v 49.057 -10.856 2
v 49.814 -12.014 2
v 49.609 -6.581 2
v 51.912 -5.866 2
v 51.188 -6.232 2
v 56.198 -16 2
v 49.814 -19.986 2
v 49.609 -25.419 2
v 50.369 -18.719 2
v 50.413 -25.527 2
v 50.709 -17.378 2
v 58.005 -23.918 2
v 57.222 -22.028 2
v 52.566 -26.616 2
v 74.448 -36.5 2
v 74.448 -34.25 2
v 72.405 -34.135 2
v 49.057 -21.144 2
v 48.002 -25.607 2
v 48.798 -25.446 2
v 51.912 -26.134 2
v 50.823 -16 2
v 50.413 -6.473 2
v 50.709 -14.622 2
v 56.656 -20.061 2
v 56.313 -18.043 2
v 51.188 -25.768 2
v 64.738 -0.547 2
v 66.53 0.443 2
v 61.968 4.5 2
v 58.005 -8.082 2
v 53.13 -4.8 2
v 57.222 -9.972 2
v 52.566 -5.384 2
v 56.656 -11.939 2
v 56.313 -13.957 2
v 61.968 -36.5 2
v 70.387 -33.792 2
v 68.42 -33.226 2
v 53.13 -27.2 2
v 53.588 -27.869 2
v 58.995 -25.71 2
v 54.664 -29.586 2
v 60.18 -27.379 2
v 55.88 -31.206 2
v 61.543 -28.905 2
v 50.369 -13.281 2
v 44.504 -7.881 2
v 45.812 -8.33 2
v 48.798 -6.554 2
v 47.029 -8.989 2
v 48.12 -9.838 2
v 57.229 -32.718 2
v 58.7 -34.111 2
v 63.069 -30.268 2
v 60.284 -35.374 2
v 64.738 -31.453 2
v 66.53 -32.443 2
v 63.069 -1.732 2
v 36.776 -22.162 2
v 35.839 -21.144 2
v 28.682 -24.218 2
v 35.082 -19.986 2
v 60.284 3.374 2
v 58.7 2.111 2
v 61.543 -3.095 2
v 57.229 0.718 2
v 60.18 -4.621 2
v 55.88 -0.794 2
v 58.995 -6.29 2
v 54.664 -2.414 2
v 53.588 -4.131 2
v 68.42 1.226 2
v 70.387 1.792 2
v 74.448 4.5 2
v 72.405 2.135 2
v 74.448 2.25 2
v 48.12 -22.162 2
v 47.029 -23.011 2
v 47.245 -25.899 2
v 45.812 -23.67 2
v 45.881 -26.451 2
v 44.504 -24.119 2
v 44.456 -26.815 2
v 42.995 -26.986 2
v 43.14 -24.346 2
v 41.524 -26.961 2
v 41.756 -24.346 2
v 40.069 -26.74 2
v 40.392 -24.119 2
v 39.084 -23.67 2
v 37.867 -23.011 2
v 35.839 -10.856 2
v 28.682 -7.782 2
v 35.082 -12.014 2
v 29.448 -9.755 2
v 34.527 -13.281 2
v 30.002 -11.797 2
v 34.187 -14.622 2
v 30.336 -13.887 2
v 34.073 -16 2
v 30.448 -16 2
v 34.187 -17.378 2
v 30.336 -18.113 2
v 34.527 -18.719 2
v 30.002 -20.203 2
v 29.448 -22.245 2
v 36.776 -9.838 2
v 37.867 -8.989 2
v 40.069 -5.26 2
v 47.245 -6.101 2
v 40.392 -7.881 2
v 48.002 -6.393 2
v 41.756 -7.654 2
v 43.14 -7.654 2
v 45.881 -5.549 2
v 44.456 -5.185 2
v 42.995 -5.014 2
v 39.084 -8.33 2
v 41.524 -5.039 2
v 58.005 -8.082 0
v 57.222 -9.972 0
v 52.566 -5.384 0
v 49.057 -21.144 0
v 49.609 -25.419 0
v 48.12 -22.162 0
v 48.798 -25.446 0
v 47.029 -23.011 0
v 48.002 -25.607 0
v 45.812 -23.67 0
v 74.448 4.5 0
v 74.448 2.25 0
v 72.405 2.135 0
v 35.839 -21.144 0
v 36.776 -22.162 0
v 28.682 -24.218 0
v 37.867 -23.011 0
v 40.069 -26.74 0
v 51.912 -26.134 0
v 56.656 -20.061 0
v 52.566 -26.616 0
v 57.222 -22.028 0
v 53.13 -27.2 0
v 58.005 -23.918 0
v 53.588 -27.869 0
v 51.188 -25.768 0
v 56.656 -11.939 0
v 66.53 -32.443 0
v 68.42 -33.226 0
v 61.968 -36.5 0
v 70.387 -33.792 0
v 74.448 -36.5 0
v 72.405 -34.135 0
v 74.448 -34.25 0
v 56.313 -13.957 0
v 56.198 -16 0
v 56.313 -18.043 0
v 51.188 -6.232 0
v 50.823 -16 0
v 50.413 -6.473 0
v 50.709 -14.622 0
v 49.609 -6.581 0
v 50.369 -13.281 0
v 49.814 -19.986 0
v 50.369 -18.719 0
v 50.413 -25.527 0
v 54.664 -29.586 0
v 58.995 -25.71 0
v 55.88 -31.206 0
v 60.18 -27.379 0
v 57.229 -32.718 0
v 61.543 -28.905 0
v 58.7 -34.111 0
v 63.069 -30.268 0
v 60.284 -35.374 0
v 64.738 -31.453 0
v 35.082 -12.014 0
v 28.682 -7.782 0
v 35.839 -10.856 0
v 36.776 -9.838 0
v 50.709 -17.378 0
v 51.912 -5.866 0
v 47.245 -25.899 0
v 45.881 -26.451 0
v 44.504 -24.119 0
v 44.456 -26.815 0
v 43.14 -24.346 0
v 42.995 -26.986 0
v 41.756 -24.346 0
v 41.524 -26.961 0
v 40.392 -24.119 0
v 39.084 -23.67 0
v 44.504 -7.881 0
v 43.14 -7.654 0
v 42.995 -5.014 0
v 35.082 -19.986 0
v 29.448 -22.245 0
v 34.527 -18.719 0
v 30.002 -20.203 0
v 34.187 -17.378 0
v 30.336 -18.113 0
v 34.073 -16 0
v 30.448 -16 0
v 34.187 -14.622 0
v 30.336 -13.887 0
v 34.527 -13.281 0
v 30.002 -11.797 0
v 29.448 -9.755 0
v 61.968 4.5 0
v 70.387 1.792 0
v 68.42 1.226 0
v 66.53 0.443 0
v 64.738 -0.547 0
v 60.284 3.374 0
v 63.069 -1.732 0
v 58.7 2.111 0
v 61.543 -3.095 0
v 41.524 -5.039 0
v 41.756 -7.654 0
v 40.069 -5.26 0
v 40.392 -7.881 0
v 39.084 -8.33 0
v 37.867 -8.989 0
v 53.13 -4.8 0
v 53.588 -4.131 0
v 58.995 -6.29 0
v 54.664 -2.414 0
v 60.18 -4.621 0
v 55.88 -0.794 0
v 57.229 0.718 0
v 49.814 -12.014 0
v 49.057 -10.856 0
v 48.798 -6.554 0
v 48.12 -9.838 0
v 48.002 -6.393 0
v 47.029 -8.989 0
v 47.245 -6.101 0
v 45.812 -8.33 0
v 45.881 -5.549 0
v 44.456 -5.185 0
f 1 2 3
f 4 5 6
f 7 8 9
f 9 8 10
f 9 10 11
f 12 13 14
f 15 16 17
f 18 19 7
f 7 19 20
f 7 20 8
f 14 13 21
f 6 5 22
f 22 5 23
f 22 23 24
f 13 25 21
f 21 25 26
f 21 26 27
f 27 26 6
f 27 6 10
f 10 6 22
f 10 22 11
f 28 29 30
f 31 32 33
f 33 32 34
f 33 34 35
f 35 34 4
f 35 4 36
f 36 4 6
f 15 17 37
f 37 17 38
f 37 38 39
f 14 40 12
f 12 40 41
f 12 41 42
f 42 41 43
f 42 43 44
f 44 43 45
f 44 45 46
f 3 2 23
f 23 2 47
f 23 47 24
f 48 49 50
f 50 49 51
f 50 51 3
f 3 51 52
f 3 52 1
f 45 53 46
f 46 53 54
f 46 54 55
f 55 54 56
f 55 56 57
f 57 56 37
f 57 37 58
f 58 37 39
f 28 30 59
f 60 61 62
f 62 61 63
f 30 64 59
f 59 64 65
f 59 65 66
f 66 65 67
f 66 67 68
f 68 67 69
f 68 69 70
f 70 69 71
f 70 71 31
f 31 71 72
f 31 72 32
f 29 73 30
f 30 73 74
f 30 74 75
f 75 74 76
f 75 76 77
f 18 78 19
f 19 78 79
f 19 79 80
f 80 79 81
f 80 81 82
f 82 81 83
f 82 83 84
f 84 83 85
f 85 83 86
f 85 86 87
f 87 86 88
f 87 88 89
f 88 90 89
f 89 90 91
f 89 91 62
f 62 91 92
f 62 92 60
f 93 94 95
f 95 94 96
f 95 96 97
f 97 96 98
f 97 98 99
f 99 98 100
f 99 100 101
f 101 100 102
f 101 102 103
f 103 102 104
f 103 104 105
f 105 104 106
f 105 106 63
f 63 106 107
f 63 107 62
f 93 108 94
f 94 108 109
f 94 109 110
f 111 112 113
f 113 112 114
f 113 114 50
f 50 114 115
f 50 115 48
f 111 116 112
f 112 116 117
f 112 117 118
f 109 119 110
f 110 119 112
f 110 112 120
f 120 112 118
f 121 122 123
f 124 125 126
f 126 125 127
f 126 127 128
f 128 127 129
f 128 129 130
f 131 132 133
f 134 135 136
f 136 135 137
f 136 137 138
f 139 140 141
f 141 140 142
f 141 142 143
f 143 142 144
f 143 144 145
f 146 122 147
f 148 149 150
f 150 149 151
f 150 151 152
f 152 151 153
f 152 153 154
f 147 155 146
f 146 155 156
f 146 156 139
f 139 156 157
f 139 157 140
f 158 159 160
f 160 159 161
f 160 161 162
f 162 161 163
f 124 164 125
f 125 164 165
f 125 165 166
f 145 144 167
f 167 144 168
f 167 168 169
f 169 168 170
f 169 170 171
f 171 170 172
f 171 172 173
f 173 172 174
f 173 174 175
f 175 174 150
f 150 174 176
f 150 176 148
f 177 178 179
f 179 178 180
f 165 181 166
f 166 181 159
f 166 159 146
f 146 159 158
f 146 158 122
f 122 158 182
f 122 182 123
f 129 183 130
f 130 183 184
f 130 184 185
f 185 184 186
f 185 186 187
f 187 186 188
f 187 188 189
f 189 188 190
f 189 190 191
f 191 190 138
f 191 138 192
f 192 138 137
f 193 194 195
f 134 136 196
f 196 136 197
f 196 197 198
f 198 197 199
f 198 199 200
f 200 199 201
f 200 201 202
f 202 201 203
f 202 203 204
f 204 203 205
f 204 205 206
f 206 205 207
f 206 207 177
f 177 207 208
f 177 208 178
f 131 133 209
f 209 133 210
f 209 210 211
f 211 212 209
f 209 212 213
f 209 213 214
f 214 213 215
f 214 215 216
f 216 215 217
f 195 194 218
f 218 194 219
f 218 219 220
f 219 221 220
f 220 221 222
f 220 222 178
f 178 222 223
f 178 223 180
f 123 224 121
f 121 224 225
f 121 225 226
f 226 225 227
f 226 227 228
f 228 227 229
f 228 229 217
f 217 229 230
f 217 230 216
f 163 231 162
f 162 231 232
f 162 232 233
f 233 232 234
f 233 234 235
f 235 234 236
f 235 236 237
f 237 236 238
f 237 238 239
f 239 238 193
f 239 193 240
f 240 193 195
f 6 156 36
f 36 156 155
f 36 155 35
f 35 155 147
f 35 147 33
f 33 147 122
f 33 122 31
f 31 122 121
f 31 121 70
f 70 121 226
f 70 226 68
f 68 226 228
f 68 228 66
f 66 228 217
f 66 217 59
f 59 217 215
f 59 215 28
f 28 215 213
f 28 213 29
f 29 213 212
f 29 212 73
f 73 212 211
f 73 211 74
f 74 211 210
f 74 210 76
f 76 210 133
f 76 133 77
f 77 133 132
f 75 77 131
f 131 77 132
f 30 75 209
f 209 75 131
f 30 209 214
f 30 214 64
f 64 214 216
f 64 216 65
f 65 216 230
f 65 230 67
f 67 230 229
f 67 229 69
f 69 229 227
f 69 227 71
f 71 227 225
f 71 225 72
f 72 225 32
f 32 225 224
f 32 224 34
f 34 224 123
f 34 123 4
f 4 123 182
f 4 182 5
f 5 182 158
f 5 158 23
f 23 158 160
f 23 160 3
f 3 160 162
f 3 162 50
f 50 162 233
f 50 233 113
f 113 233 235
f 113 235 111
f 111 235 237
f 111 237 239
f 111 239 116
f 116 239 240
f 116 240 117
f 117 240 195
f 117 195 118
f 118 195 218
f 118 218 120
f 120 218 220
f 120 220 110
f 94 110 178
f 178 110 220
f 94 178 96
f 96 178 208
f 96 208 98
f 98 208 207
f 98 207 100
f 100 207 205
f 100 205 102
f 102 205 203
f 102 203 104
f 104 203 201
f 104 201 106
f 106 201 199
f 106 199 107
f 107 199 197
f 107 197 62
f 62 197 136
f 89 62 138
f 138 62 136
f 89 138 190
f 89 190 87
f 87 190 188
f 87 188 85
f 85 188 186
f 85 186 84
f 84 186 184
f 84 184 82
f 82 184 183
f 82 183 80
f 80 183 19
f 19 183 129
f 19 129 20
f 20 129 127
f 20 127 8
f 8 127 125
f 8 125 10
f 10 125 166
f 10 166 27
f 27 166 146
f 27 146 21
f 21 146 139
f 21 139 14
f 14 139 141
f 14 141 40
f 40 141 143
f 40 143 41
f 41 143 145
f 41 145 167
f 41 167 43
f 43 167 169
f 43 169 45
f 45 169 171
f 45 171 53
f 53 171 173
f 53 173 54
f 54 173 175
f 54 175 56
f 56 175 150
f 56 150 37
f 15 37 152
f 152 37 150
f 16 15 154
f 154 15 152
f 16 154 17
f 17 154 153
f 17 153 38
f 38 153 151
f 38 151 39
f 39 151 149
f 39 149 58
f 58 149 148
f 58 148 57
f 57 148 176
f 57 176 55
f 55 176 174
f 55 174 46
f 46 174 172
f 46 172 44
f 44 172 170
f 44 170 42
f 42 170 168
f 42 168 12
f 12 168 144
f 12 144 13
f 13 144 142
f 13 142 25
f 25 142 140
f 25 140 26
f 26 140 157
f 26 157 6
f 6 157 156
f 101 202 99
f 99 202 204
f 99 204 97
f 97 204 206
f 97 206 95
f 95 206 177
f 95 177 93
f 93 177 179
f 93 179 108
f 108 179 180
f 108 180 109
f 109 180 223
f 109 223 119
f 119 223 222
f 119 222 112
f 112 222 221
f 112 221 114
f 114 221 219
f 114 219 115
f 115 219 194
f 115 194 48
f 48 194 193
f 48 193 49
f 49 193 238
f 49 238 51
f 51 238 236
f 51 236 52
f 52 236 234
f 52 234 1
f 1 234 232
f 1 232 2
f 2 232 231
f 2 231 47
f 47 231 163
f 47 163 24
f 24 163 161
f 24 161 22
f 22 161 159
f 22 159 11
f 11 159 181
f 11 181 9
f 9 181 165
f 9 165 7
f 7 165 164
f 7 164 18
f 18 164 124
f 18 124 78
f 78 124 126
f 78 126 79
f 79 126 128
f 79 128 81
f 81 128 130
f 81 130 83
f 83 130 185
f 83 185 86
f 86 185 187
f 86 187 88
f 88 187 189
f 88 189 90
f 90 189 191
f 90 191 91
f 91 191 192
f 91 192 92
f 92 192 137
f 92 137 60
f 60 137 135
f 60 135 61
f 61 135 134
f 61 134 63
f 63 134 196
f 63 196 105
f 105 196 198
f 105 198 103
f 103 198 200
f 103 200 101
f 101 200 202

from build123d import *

# Parameters (mm, degrees)
MODEL_R             = 8.375
BOSS_EXTRUDE1_DEPTH = 2


with BuildPart() as part:
    # Model → Boss-Extrude1 (new body)
    with BuildSketch(Plane.XY):
        with BuildLine():
            Line((74.448010934, 2.249927661), (74.448004895, 4.500084718))
            Line((74.448004895, 4.500084718), (61.968150916, 4.500005388))
            ThreePointArc((61.968150916, 4.500005388), (57.22880439, 0.718152869), (53.588491837, -4.130758193))
            ThreePointArc((53.588491837, -4.130758193), (50.805713706, -6.36868051), (47.244750466, -6.10092834))
            ThreePointArc((47.244750466, -6.10092834), (43.728043409, -5.074712325), (40.069365021, -5.260239392))
            Line((40.069365021, -5.260239392), (28.682107763, -7.782293479))
            ThreePointArc((28.682107763, -7.782293479), (30.001771143, -11.797316195), (30.448277219, -16.000000001))
            ThreePointArc((30.448277219, -16.000000001), (30.001771143, -20.202683806), (28.682107763, -24.217706522))
            Line((28.682107763, -24.217706522), (40.069365021, -26.73976061))
            ThreePointArc((40.069365021, -26.73976061), (43.728043409, -26.925287677), (47.244750466, -25.899071661))
            ThreePointArc((47.244750466, -25.899071661), (50.805713706, -25.631319491), (53.588491837, -27.869241808))
            ThreePointArc((53.588491837, -27.869241808), (57.22880439, -32.718152871), (61.968150916, -36.500005389))
            Line((61.968150916, -36.500005389), (74.448004895, -36.500084719))
            Line((74.448004895, -36.500084719), (74.448010934, -34.249927662))
            ThreePointArc((74.448010934, -34.249927662), (61.543360309, -28.904678271), (56.198007214, -16.000070602))
            ThreePointArc((56.198007214, -16.000070602), (61.543310386, -3.095371653), (74.448010934, 2.249927661))
        make_face()
        with Locations((42.448007213, -15.999981536)):
            Circle(MODEL_R, mode=Mode.SUBTRACT)
    extrude(amount=BOSS_EXTRUDE1_DEPTH)


solid = part.part
